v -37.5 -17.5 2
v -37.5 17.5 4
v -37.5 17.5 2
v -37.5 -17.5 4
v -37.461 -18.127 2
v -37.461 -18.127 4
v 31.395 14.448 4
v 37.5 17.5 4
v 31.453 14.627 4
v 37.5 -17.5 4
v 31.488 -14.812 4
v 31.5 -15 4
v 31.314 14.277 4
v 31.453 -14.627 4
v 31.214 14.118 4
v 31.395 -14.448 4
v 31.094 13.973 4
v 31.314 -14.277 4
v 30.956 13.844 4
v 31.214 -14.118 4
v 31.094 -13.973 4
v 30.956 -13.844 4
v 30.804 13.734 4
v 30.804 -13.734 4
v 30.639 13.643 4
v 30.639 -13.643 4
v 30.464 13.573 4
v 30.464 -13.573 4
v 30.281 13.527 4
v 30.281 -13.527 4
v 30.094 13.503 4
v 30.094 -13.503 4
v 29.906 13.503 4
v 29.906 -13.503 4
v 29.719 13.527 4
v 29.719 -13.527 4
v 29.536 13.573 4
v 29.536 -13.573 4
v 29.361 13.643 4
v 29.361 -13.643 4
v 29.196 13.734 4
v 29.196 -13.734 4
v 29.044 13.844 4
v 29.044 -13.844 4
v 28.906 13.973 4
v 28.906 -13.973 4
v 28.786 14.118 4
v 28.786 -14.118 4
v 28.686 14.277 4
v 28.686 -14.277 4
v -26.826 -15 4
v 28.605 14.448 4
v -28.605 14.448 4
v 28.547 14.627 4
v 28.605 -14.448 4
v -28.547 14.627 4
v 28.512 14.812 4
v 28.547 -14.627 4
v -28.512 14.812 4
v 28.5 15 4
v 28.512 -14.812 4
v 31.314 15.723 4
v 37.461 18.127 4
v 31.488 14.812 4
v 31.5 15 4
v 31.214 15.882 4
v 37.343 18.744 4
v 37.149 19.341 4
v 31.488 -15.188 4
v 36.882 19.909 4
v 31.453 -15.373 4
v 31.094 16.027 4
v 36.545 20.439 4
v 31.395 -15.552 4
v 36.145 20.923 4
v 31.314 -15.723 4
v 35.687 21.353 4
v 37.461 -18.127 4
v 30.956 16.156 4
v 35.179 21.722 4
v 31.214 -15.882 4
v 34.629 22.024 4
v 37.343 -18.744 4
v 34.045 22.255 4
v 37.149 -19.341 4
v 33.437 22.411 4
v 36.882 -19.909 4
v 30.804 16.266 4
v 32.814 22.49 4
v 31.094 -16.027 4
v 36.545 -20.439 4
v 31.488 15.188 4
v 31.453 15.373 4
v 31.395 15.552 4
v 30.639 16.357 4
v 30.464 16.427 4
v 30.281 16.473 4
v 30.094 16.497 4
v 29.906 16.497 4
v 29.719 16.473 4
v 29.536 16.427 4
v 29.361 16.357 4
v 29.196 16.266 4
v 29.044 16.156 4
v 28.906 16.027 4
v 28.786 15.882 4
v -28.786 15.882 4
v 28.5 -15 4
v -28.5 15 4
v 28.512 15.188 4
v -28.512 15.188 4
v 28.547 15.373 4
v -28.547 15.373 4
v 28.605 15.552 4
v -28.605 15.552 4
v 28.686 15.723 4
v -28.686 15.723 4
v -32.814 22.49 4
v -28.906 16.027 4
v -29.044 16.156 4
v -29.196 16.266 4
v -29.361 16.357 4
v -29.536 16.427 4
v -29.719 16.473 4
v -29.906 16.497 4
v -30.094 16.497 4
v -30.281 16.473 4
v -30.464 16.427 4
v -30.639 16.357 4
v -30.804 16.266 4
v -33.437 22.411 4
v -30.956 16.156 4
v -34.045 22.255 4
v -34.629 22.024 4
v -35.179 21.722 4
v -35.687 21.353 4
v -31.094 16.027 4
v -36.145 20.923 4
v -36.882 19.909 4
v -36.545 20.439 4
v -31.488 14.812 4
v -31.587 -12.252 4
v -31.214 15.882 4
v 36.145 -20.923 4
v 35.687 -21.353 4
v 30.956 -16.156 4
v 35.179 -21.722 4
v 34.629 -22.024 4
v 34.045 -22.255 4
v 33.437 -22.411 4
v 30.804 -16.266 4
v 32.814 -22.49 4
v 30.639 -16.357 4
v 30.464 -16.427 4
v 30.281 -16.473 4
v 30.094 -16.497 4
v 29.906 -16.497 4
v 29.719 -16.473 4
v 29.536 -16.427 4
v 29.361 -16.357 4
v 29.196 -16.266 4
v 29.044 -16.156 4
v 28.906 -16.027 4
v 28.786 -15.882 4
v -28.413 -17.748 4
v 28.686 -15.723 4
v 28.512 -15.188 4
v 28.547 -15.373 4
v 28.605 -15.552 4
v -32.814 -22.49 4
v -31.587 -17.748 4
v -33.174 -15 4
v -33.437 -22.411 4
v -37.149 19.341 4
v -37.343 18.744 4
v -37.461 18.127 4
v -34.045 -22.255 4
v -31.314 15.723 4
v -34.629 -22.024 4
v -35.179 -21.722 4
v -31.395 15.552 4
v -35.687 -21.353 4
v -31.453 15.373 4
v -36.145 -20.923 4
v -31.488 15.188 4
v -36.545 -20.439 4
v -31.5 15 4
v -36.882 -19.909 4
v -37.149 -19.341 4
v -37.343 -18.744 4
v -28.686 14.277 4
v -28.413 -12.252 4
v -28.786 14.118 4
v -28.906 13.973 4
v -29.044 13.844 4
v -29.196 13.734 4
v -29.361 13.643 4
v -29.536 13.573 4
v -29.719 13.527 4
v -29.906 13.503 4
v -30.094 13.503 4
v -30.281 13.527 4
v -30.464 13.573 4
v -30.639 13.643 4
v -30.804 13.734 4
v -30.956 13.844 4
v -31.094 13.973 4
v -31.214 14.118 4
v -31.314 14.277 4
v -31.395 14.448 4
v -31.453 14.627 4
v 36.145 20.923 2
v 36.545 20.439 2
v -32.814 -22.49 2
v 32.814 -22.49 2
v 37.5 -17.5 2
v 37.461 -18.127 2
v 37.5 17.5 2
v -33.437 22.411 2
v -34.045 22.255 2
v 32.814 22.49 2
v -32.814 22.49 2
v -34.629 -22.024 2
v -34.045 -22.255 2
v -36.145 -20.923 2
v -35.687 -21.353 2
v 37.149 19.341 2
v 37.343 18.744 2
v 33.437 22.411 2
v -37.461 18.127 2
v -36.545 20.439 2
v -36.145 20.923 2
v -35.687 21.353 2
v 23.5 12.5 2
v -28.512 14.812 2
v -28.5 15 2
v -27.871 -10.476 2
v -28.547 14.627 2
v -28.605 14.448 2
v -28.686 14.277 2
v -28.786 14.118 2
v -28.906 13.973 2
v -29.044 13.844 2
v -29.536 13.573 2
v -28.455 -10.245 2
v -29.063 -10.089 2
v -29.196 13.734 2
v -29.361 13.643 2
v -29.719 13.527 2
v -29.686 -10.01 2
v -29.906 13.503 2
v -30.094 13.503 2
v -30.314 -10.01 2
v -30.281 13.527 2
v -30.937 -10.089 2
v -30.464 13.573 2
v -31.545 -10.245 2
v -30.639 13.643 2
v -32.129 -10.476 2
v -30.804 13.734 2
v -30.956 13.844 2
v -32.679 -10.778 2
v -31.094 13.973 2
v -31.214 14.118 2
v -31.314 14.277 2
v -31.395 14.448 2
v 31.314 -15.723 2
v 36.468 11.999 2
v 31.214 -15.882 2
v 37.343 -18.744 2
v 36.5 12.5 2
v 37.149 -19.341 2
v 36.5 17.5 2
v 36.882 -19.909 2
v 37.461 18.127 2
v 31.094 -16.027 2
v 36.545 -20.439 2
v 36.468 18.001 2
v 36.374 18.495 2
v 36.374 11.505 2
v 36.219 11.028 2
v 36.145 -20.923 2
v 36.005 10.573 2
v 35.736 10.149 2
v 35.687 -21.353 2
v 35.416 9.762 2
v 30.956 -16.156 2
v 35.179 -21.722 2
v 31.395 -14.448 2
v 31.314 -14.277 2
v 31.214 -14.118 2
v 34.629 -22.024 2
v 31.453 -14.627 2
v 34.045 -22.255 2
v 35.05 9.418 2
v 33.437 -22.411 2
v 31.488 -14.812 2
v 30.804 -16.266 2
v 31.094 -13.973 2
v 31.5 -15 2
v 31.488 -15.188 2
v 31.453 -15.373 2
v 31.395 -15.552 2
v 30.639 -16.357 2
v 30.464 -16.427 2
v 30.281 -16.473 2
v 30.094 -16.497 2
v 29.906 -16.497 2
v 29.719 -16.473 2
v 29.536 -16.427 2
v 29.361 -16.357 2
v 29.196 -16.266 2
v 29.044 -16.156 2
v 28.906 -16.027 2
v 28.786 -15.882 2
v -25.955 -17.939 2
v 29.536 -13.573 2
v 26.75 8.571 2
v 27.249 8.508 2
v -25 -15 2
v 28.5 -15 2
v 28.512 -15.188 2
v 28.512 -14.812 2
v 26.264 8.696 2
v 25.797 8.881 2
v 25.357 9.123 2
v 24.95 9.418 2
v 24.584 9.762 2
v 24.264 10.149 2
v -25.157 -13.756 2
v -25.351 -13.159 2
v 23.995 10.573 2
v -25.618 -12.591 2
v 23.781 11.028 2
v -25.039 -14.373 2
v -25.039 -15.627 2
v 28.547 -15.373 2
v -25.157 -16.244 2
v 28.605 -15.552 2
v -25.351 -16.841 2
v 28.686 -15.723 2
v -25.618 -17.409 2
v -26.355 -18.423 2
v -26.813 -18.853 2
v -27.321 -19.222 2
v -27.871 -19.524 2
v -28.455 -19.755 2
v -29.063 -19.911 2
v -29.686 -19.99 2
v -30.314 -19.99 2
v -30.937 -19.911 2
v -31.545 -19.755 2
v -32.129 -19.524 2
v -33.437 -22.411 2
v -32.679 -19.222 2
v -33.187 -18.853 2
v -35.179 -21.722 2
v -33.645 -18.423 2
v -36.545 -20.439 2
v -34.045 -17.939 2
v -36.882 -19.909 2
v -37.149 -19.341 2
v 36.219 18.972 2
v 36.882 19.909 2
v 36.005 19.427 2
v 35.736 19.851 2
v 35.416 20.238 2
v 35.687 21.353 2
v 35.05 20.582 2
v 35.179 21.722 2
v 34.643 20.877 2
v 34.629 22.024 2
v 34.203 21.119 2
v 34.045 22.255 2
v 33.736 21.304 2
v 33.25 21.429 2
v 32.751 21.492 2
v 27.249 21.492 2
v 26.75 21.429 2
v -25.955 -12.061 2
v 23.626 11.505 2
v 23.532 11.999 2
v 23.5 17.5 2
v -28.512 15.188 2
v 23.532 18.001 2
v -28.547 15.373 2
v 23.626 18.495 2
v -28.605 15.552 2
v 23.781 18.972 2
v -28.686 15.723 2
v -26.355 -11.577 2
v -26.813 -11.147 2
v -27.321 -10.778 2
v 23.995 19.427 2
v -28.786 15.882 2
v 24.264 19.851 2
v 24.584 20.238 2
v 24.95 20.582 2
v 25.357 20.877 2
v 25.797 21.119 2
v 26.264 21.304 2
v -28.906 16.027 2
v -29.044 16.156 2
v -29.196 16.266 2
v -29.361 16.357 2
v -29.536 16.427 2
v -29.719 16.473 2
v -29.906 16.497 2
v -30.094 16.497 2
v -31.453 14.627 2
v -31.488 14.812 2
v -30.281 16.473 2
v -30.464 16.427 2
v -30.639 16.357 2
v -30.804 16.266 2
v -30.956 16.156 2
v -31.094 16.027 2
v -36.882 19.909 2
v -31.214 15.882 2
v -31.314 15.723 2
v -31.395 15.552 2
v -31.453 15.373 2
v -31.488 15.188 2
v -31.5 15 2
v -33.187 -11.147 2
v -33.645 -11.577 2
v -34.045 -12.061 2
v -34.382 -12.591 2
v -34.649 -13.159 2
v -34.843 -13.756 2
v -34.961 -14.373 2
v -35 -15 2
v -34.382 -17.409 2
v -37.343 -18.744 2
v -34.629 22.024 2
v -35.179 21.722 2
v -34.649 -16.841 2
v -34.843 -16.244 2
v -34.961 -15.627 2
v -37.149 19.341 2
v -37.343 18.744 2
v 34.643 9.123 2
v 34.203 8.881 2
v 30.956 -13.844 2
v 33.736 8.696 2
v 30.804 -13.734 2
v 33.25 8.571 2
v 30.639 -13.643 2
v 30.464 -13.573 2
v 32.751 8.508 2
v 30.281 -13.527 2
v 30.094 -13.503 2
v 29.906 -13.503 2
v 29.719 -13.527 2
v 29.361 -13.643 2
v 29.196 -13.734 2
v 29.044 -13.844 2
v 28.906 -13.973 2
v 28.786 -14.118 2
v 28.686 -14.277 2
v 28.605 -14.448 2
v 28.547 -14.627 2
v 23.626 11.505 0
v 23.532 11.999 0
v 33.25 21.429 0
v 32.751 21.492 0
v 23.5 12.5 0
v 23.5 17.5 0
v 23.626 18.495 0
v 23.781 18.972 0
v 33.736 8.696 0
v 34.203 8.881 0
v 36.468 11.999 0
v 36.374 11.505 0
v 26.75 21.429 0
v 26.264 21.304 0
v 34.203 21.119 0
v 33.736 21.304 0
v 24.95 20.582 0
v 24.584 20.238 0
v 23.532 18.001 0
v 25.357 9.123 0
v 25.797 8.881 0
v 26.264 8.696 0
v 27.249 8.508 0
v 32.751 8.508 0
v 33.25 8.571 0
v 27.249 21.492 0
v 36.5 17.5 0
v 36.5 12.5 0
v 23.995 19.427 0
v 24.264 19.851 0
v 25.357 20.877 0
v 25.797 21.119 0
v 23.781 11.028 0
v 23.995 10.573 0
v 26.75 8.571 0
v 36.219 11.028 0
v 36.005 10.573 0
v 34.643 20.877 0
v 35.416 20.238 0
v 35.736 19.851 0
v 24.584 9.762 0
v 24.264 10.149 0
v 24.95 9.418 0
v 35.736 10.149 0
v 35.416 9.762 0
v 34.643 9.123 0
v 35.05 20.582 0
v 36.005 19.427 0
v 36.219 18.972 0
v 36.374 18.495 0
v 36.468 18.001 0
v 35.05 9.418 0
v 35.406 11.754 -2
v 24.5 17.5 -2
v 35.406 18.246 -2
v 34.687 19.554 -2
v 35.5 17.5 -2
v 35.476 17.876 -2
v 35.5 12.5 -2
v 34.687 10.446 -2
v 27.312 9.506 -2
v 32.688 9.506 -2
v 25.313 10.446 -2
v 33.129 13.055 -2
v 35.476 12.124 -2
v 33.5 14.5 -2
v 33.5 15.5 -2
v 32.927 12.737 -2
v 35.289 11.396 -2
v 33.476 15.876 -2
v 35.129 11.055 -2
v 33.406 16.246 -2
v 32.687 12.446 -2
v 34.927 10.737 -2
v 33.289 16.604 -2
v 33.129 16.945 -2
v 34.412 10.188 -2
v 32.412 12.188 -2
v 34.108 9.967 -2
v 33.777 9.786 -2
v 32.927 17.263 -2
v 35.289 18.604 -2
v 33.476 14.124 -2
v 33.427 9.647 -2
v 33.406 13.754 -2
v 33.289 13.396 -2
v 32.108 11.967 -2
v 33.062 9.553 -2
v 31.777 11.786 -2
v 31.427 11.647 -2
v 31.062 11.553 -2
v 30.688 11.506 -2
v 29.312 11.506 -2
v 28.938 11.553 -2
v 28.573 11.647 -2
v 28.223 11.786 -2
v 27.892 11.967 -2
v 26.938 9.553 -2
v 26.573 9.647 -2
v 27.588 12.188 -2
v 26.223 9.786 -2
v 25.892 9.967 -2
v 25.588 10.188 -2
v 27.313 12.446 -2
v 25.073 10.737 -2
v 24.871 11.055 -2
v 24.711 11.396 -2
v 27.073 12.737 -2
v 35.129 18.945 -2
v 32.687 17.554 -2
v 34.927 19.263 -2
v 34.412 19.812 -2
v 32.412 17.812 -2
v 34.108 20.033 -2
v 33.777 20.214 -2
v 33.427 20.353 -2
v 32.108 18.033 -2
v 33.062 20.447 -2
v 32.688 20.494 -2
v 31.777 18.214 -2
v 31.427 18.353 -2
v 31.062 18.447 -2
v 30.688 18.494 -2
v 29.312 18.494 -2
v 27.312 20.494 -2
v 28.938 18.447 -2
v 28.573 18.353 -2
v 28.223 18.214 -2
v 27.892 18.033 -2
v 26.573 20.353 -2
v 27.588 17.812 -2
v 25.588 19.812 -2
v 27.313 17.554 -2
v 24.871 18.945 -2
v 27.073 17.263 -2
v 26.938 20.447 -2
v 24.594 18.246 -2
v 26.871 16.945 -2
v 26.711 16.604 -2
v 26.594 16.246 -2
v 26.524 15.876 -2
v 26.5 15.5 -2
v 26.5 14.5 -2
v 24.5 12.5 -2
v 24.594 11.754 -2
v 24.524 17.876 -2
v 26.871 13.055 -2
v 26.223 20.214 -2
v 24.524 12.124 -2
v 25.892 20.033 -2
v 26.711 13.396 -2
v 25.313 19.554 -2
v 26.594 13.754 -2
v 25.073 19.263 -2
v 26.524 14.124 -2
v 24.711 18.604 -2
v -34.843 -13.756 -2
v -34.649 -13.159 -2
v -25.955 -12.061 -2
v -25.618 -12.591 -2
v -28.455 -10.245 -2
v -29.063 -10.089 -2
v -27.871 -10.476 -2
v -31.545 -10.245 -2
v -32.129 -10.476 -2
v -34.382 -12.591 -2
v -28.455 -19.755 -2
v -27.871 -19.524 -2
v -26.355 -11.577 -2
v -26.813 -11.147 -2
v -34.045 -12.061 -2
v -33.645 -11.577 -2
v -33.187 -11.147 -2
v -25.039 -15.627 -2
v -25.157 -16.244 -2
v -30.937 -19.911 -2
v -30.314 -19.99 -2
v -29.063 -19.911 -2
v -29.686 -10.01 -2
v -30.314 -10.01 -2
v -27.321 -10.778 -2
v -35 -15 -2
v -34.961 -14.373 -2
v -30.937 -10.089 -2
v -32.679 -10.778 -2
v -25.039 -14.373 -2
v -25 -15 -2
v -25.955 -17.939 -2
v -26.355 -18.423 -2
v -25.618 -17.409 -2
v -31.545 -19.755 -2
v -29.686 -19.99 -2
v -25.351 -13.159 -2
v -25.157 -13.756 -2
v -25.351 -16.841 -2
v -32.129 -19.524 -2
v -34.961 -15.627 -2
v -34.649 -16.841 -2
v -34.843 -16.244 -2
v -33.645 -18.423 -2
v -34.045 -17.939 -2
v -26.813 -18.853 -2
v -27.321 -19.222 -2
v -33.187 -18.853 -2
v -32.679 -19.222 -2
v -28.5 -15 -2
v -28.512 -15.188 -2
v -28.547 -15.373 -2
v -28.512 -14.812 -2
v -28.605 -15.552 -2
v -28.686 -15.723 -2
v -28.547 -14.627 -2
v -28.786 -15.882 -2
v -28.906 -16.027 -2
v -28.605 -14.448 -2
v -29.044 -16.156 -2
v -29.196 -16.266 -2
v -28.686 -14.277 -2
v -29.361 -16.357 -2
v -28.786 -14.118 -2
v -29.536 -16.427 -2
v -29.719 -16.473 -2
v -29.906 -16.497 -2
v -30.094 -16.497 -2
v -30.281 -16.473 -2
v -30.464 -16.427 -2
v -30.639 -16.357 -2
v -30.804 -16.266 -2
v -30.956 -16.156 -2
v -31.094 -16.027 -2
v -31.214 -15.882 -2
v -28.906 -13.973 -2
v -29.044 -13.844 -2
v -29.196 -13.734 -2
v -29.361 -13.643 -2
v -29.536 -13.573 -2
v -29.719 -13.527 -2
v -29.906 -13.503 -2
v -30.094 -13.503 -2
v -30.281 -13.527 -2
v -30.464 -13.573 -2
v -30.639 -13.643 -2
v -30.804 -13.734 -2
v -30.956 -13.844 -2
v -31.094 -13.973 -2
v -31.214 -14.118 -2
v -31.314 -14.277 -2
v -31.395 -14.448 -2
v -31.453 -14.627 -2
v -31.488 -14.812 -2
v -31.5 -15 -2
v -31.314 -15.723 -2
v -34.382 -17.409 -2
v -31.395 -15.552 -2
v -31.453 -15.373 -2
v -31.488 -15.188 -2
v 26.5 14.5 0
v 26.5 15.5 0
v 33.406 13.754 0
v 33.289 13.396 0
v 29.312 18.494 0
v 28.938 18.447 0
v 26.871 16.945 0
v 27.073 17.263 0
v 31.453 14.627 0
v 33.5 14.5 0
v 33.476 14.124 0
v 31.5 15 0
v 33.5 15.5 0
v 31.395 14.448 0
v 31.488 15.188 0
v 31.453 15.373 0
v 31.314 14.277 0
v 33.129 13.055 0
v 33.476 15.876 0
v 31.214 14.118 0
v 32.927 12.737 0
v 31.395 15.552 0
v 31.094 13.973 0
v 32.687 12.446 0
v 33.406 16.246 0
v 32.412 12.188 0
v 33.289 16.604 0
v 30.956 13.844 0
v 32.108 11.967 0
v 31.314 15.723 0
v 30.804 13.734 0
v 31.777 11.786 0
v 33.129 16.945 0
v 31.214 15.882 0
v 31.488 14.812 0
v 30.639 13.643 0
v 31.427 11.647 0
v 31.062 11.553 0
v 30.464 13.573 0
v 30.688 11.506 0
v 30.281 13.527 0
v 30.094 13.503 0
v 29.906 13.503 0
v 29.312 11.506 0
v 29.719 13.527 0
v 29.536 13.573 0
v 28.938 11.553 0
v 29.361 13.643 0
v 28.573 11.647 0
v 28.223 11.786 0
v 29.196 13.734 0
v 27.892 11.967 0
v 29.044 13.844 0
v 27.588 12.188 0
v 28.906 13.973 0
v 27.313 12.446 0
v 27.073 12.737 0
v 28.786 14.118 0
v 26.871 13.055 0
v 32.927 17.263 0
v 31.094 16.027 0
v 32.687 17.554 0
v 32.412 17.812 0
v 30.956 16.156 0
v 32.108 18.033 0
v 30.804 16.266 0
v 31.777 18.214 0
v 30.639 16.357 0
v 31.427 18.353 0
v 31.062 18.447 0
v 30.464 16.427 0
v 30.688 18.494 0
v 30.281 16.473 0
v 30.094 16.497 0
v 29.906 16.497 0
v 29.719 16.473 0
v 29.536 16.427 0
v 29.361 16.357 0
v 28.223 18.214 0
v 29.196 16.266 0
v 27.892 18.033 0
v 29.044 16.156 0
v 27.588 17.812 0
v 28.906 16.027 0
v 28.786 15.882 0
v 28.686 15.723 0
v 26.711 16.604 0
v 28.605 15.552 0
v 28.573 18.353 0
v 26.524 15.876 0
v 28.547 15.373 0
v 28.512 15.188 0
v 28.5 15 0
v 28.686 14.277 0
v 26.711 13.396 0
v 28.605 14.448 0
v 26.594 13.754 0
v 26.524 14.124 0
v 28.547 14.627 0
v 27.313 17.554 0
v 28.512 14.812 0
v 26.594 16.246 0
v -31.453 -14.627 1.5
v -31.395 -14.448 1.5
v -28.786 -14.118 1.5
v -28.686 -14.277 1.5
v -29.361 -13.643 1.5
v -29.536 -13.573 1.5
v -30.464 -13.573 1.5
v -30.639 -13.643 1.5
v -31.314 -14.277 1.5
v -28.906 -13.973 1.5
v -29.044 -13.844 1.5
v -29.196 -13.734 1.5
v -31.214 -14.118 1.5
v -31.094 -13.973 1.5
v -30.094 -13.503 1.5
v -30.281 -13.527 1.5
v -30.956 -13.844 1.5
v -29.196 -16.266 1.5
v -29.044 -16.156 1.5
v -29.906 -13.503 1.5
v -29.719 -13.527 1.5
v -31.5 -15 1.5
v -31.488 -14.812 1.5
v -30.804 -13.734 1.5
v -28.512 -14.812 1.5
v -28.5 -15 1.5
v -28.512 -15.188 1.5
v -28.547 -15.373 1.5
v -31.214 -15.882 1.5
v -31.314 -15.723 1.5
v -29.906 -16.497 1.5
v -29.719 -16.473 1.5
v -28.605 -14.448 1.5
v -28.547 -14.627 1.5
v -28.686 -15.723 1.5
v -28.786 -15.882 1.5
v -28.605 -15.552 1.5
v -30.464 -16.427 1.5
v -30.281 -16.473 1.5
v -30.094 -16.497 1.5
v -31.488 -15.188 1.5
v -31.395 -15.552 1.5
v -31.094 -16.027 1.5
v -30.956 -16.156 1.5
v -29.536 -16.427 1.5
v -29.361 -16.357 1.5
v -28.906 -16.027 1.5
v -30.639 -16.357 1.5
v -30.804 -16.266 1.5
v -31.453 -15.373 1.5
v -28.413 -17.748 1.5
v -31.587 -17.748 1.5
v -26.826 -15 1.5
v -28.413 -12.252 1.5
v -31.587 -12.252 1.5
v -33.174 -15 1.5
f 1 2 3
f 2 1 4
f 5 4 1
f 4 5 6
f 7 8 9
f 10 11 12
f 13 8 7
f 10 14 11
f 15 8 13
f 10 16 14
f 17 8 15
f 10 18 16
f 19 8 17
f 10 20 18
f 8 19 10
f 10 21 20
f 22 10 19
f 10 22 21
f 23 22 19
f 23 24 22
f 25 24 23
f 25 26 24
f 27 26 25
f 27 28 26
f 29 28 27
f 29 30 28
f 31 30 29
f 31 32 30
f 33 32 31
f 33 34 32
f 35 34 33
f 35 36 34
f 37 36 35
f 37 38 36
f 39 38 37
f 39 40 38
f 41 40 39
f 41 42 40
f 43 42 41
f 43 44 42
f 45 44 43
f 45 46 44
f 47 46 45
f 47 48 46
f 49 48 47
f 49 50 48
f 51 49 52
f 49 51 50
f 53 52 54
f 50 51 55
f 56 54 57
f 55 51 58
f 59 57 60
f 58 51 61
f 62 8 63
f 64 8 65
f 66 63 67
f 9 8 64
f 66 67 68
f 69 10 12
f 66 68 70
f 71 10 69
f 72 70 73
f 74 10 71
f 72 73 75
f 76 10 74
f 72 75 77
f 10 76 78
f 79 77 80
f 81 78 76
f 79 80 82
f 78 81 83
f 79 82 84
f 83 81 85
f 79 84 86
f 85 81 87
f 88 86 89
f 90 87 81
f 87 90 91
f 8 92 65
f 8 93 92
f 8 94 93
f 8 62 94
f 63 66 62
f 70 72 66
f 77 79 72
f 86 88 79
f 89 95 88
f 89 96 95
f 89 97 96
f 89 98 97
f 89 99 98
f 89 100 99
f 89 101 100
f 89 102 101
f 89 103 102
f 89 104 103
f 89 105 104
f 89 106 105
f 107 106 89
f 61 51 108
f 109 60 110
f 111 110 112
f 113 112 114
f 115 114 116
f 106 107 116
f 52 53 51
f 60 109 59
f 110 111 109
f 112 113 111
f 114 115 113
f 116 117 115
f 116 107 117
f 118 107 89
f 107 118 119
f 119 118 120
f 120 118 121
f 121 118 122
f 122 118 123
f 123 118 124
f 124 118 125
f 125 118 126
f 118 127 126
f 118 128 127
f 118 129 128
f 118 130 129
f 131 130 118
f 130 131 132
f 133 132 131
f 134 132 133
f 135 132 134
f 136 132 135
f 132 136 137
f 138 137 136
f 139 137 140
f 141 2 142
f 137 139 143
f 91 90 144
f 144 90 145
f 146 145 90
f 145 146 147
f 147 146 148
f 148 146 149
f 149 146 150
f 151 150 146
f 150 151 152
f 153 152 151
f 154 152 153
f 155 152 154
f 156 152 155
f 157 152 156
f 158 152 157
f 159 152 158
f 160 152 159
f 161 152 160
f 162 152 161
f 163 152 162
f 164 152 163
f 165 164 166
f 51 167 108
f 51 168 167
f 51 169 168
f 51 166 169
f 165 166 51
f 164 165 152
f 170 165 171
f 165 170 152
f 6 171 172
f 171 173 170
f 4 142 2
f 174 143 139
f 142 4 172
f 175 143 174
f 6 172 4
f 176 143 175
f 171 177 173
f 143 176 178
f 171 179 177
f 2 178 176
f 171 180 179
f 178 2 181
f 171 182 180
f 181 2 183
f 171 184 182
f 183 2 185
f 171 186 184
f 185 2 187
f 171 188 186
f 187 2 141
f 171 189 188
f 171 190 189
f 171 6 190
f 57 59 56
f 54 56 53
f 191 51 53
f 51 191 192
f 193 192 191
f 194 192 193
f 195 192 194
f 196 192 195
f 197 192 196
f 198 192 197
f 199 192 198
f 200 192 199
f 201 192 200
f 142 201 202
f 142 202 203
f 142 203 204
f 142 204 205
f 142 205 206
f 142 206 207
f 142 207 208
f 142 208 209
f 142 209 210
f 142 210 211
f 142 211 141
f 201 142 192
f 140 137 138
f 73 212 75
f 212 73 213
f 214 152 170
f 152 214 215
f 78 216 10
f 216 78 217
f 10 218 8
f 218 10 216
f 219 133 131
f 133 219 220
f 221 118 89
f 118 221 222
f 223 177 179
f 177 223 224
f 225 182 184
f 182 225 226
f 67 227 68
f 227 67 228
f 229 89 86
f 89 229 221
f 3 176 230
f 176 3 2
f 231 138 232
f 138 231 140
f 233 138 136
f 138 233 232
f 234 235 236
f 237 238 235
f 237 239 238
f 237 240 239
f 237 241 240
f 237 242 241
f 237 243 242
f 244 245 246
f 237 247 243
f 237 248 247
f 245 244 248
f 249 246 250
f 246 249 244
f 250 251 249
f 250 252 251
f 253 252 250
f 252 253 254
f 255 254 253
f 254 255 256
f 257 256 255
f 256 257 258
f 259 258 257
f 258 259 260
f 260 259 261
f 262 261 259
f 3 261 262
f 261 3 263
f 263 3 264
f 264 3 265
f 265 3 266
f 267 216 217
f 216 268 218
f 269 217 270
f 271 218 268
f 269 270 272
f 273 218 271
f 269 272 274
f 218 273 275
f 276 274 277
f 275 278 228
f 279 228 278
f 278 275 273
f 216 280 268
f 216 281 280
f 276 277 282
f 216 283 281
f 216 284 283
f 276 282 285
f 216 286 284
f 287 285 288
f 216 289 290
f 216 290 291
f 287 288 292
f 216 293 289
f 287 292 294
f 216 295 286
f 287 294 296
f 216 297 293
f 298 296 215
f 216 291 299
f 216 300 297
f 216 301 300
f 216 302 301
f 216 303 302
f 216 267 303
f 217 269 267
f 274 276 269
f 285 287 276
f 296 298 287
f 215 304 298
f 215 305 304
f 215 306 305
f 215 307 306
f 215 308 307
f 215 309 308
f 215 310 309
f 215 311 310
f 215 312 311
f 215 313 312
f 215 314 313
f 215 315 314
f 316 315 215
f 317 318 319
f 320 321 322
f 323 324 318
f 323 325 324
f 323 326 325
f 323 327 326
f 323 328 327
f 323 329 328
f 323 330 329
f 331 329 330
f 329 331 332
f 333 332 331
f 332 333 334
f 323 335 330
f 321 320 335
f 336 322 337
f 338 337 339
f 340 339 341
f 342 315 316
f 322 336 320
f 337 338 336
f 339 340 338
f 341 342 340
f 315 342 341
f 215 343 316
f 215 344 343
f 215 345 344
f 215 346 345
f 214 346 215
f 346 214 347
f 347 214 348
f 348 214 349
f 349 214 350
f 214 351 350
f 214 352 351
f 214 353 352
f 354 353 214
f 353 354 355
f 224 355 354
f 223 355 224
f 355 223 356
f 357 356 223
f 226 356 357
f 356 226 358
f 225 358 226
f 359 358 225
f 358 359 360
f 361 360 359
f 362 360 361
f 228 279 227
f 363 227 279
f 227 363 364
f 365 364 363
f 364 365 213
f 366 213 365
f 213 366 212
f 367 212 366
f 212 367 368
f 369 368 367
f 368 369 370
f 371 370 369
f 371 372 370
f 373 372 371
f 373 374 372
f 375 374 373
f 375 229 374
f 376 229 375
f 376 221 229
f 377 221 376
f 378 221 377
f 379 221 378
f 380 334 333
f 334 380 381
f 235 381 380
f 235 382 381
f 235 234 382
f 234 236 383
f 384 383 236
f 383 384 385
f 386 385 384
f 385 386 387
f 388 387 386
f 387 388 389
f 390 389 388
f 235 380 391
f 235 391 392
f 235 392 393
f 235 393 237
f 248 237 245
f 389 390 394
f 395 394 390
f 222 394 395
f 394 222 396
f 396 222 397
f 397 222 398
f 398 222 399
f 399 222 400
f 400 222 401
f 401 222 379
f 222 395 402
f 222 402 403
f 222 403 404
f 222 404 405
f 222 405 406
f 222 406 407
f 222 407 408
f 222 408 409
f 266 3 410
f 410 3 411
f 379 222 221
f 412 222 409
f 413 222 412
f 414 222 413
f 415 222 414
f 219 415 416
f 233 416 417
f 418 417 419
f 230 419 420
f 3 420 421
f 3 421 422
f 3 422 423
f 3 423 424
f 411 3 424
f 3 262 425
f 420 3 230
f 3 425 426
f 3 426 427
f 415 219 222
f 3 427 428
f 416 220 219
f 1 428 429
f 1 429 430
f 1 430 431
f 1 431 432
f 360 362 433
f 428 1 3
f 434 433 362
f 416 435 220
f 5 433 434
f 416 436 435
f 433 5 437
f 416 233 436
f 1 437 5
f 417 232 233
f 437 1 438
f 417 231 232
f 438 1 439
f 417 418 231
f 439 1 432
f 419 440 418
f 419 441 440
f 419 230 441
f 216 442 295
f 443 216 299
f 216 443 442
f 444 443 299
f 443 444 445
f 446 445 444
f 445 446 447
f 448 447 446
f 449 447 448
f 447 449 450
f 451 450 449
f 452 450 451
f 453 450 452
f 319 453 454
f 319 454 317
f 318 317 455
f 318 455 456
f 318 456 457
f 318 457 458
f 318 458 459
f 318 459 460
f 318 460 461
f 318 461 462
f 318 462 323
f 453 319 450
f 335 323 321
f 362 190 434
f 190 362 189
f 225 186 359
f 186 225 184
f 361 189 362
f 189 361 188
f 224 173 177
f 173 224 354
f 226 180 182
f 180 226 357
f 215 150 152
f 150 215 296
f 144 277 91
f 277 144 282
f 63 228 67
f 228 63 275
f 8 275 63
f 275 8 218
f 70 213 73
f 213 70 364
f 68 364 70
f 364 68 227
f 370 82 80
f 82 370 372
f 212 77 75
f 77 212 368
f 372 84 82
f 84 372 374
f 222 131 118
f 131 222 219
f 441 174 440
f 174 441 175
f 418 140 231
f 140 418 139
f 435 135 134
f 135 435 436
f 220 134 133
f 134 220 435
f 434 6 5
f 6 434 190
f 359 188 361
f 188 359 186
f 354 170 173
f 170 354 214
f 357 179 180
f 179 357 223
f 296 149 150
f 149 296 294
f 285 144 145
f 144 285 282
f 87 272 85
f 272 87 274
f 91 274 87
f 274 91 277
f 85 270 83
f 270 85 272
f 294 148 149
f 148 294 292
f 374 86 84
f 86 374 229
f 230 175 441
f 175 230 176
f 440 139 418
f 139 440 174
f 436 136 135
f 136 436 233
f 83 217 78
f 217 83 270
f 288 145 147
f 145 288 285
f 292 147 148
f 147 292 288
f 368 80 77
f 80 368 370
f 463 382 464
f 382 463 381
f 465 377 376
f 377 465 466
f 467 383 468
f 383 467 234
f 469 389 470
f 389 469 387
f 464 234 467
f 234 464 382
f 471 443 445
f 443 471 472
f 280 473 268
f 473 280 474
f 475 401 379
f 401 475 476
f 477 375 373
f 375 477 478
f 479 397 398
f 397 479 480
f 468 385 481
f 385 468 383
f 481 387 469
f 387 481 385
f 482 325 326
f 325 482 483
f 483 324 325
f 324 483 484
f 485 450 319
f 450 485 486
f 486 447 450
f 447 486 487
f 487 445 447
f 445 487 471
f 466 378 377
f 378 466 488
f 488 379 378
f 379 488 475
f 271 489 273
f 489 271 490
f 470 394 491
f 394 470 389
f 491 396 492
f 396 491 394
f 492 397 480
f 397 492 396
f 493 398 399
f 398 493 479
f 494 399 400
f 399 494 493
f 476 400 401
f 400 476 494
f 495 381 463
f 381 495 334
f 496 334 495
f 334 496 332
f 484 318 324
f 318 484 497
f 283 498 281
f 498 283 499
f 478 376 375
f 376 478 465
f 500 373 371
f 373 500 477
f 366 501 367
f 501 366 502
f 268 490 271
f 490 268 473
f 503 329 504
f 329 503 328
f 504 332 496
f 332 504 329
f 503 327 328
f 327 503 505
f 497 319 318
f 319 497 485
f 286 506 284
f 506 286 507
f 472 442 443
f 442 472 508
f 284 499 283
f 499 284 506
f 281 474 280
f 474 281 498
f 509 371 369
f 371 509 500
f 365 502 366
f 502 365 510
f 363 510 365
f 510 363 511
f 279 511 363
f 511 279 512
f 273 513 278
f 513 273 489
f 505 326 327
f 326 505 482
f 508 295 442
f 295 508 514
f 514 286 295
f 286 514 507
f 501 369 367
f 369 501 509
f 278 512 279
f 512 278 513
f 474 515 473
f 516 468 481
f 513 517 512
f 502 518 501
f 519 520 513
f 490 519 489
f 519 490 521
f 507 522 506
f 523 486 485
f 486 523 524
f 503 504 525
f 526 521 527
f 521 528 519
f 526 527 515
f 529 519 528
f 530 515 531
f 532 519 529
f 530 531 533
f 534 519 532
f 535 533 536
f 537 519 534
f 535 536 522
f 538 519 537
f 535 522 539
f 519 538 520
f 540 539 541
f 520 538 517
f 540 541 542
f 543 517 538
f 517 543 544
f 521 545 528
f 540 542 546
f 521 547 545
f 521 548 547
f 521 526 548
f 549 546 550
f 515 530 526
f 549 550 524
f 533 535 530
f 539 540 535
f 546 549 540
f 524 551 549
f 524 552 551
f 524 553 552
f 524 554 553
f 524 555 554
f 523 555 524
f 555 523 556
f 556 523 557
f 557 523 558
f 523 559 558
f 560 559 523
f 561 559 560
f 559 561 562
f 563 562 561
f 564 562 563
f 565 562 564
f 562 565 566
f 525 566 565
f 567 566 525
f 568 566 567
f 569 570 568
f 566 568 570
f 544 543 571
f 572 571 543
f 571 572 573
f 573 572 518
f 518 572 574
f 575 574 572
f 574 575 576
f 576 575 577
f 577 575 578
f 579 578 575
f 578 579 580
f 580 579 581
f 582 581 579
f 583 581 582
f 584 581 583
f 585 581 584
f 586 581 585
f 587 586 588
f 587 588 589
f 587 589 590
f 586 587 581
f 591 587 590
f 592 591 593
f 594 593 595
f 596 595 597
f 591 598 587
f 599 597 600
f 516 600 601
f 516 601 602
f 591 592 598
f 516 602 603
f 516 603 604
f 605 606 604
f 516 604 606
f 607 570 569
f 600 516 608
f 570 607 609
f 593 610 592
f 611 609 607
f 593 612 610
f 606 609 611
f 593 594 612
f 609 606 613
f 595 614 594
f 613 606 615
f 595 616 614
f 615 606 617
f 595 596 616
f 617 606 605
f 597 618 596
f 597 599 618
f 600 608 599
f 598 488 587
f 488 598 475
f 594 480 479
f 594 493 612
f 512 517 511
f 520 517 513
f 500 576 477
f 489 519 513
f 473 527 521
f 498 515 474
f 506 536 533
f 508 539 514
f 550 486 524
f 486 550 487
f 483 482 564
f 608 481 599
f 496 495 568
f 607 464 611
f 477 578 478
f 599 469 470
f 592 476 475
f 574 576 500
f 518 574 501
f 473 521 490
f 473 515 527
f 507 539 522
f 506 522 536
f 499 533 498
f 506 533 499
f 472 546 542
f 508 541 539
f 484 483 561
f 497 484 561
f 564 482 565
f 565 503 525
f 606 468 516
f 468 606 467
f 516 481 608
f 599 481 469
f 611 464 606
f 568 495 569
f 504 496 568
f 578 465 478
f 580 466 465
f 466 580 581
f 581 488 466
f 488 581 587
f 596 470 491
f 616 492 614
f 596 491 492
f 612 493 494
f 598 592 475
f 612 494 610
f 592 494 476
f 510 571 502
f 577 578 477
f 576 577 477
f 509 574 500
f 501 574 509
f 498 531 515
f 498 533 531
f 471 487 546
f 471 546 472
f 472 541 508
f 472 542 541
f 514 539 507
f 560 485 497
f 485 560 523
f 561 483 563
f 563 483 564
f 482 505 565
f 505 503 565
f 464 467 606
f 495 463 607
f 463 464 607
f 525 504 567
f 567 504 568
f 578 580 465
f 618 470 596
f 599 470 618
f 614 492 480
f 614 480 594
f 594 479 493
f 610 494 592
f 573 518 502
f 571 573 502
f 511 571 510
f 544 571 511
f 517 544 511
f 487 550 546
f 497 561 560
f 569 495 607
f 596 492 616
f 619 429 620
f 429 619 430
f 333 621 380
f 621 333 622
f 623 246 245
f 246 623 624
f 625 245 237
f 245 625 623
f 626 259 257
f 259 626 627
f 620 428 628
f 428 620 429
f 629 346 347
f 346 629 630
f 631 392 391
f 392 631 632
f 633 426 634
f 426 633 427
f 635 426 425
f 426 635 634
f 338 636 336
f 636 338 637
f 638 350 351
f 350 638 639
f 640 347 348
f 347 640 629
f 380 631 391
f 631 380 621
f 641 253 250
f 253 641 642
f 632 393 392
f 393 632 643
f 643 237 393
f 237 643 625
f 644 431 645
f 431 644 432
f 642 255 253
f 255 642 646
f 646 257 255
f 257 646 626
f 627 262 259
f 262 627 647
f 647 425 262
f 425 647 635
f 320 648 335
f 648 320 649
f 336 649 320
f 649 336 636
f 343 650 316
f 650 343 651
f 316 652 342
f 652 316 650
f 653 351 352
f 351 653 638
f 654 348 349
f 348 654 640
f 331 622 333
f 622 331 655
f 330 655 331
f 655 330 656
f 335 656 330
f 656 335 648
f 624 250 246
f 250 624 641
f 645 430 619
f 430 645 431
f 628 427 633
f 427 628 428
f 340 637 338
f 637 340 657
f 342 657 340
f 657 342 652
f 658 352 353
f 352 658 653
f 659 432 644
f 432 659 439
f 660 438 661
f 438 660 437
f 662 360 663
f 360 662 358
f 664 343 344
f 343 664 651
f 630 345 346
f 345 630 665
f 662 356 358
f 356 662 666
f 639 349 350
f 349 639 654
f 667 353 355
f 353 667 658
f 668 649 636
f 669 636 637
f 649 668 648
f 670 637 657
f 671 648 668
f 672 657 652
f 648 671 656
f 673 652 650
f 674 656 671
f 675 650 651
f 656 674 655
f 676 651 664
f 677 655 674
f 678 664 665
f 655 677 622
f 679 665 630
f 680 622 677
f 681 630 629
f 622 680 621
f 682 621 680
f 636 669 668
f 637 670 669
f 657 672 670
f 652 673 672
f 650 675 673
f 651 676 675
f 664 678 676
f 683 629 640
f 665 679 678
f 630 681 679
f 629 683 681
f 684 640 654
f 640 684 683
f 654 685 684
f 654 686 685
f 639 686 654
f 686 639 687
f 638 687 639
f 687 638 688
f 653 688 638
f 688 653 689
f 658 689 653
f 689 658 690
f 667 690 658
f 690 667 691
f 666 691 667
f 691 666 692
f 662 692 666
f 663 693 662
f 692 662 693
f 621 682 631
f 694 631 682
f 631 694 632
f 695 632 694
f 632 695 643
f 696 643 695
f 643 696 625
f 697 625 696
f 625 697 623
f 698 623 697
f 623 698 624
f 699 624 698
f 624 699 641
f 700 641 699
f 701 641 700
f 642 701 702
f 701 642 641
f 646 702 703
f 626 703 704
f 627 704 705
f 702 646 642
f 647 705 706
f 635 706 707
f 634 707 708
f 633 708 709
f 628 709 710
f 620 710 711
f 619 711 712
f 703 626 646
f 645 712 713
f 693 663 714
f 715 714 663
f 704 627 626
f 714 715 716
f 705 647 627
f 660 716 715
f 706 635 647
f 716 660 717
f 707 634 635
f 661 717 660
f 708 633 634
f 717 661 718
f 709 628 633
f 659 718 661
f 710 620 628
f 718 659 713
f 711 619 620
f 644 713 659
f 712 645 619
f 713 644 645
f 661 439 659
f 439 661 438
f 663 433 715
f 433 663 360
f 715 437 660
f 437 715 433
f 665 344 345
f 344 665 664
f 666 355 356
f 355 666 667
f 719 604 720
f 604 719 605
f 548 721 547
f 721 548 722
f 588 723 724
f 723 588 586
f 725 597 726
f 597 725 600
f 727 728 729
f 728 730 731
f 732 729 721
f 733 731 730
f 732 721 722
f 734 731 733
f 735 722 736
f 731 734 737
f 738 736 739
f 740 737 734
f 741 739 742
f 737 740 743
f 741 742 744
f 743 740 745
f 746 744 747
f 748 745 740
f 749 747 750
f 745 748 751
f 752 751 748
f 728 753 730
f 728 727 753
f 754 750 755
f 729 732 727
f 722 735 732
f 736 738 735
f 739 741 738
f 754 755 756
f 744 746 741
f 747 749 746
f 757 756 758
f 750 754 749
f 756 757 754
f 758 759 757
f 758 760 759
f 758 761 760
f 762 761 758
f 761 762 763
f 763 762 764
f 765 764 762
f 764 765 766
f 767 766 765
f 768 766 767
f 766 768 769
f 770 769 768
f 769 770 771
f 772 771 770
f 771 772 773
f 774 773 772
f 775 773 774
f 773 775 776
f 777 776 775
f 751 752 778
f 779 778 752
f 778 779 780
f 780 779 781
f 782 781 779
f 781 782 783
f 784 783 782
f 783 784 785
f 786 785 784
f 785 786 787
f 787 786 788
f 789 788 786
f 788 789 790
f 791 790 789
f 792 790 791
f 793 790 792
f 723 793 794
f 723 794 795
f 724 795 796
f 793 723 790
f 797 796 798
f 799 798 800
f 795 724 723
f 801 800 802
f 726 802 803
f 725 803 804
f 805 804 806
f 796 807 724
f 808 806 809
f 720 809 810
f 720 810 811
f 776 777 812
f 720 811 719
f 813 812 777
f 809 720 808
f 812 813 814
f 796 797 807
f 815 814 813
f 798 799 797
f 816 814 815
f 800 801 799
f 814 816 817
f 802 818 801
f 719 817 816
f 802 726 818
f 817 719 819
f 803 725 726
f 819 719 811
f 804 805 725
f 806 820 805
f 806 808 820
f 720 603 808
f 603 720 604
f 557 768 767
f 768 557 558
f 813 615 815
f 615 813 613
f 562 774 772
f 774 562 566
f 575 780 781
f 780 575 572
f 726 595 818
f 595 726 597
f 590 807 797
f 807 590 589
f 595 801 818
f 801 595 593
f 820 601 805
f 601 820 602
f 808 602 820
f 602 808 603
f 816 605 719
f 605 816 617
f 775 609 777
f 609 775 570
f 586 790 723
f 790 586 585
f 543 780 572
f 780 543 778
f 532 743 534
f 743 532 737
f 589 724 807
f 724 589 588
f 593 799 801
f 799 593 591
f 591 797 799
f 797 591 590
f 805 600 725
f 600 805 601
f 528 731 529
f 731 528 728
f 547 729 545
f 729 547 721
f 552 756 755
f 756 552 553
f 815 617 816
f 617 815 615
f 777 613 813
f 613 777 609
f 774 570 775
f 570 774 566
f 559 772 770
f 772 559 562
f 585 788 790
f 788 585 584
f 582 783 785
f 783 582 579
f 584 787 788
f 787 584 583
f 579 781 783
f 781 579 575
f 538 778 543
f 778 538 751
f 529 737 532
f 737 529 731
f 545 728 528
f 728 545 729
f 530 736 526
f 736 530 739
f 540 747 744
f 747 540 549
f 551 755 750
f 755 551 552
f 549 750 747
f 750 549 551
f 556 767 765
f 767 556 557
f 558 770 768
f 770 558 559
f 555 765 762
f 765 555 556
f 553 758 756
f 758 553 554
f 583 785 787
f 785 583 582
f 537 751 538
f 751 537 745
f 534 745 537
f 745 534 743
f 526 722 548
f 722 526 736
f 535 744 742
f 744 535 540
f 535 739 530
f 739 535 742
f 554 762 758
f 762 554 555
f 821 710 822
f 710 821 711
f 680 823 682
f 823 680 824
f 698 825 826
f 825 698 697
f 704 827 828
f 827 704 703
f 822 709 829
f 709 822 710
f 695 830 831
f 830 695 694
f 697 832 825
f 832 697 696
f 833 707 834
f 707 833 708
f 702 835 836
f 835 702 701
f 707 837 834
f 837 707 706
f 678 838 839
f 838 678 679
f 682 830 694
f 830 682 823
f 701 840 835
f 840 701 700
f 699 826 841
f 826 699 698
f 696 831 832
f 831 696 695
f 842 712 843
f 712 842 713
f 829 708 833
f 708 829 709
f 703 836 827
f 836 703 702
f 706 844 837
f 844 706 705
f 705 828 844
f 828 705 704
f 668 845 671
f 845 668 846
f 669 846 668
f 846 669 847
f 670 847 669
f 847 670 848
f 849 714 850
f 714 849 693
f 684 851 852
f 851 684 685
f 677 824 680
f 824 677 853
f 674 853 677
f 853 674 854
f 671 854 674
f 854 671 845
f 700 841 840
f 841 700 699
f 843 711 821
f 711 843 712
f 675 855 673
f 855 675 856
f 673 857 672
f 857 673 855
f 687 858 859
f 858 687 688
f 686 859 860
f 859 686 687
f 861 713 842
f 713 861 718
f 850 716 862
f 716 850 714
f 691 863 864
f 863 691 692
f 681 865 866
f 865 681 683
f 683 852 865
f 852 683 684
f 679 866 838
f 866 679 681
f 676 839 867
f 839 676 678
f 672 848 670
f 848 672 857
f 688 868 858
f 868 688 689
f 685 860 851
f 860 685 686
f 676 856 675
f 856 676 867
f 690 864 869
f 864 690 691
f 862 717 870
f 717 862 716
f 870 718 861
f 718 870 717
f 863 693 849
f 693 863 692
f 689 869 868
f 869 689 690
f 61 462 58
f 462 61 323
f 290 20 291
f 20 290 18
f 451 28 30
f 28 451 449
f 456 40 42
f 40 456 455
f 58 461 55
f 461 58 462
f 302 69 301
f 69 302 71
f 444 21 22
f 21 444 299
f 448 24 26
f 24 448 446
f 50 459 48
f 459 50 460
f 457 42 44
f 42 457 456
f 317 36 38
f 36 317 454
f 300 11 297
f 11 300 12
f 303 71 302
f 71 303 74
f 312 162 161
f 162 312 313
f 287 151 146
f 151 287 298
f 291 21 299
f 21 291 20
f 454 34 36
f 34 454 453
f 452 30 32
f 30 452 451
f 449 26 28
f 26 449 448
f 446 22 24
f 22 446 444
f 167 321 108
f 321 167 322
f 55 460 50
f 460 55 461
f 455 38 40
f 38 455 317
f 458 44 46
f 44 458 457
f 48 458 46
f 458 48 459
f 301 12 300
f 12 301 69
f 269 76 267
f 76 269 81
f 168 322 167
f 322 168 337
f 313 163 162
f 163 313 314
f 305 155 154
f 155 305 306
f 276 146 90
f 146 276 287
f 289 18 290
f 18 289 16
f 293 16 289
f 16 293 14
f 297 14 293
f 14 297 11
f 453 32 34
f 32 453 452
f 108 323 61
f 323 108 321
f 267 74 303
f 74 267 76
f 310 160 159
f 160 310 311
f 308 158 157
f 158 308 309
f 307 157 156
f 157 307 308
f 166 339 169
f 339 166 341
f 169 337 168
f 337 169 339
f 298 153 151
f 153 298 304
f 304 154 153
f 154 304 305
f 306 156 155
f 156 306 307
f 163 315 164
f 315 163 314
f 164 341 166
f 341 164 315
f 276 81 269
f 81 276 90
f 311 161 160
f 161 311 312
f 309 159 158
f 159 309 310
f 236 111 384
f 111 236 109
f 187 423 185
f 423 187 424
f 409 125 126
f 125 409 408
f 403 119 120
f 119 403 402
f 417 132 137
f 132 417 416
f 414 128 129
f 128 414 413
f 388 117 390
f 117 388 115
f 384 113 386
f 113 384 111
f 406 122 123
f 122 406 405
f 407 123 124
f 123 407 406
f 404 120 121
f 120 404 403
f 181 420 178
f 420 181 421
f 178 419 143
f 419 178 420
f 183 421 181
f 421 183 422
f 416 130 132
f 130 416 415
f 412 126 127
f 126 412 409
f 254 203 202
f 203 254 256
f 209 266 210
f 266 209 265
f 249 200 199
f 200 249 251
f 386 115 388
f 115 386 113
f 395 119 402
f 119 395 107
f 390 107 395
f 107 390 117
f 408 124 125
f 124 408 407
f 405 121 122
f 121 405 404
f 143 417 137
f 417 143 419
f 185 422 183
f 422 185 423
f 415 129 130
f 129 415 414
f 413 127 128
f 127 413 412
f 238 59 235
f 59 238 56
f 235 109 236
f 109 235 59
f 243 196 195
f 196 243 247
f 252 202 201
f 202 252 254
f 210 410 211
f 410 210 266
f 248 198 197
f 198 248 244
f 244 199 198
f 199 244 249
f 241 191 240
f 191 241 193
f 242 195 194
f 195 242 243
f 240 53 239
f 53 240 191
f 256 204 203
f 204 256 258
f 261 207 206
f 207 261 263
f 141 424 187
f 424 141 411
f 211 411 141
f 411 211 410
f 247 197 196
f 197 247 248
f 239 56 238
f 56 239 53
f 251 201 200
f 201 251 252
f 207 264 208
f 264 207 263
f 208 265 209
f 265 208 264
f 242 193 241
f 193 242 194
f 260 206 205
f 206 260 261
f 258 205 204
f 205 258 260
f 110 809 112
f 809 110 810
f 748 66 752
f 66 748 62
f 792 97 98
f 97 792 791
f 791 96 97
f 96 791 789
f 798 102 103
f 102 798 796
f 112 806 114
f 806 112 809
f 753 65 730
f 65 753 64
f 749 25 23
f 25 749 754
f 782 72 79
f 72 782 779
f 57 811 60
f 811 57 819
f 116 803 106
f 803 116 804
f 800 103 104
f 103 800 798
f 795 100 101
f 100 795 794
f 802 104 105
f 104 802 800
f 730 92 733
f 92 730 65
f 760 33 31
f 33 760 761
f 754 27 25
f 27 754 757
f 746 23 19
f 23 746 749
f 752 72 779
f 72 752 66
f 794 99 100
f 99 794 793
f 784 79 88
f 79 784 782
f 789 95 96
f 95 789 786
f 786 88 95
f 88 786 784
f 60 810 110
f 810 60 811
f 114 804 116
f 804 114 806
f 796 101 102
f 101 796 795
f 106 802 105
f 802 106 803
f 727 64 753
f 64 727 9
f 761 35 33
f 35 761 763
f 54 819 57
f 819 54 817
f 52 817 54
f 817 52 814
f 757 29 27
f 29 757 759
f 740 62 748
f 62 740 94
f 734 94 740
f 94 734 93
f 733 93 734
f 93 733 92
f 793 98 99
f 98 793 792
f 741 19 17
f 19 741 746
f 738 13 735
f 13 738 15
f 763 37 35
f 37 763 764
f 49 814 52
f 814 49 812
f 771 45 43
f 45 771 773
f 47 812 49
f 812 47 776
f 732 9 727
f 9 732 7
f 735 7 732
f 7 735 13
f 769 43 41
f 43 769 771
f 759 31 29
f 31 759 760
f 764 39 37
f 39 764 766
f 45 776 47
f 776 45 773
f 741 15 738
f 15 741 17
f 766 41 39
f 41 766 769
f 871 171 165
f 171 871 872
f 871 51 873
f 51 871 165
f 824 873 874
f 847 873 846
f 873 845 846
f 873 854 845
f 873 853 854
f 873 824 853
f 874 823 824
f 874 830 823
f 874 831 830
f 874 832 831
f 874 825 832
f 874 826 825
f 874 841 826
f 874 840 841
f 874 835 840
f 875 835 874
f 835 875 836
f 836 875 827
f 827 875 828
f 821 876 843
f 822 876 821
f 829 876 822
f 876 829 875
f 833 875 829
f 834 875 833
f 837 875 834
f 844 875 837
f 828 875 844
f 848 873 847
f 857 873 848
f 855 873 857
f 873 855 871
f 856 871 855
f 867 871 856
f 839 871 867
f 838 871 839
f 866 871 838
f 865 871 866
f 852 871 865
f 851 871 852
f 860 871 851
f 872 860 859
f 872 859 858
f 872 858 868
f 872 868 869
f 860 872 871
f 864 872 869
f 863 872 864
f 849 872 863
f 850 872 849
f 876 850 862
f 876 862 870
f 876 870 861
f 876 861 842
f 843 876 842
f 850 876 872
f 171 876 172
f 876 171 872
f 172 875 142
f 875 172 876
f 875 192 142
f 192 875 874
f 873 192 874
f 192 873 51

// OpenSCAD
$fn = 50;


difference() {
	union() {
		translate(v = [0, 0, 2]) {
			rotate(a = [0, 0, 0]) {
				hull() {
					translate(v = [-32.5000000000, 17.5000000000, 0]) {
						rotate(a = [0, 0, 0]) {
							translate(v = [0, 0, 0]) {
								rotate(a = [0, 0, 0]) {
									cylinder(h = 2, r = 5);
								}
							}
						}
					}
					translate(v = [32.5000000000, 17.5000000000, 0]) {
						rotate(a = [0, 0, 0]) {
							translate(v = [0, 0, 0]) {
								rotate(a = [0, 0, 0]) {
									cylinder(h = 2, r = 5);
								}
							}
						}
					}
					translate(v = [-32.5000000000, -17.5000000000, 0]) {
						rotate(a = [0, 0, 0]) {
							translate(v = [0, 0, 0]) {
								rotate(a = [0, 0, 0]) {
									cylinder(h = 2, r = 5);
								}
							}
						}
					}
					translate(v = [32.5000000000, -17.5000000000, 0]) {
						rotate(a = [0, 0, 0]) {
							translate(v = [0, 0, 0]) {
								rotate(a = [0, 0, 0]) {
									cylinder(h = 2, r = 5);
								}
							}
						}
					}
				}
			}
		}
		translate(v = [30.0000000000, 15.0000000000, 0]) {
			rotate(a = [0, 0, 0]) {
				hull() {
					translate(v = [-2.5000000000, 2.5000000000, 0]) {
						rotate(a = [0, 0, 0]) {
							cylinder(h = 2, r1 = 4.0000000000, r2 = 4.0000000000);
						}
					}
					translate(v = [2.5000000000, 2.5000000000, 0]) {
						rotate(a = [0, 0, 0]) {
							cylinder(h = 2, r1 = 4.0000000000, r2 = 4.0000000000);
						}
					}
					translate(v = [-2.5000000000, -2.5000000000, 0]) {
						rotate(a = [0, 0, 0]) {
							cylinder(h = 2, r1 = 4.0000000000, r2 = 4.0000000000);
						}
					}
					translate(v = [2.5000000000, -2.5000000000, 0]) {
						rotate(a = [0, 0, 0]) {
							cylinder(h = 2, r1 = 4.0000000000, r2 = 4.0000000000);
						}
					}
				}
			}
		}
		translate(v = [30.0000000000, 15.0000000000, -2]) {
			rotate(a = [0, 180, 0]) {
				hull() {
					translate(v = [-2.5000000000, 2.5000000000, 0]) {
						rotate(a = [0, 180, 0]) {
							cylinder(h = 2, r1 = 3.0000000000, r2 = 4.0000000000);
						}
					}
					translate(v = [2.5000000000, 2.5000000000, 0]) {
						rotate(a = [0, 180, 0]) {
							cylinder(h = 2, r1 = 3.0000000000, r2 = 4.0000000000);
						}
					}
					translate(v = [-2.5000000000, -2.5000000000, 0]) {
						rotate(a = [0, 180, 0]) {
							cylinder(h = 2, r1 = 3.0000000000, r2 = 4.0000000000);
						}
					}
					translate(v = [2.5000000000, -2.5000000000, 0]) {
						rotate(a = [0, 180, 0]) {
							cylinder(h = 2, r1 = 3.0000000000, r2 = 4.0000000000);
						}
					}
				}
			}
		}
		translate(v = [-30.0000000000, -15.0000000000, -2.0000000000]) {
			rotate(a = [0, 0, 0]) {
				cylinder(h = 4, r = 5);
			}
		}
	}
	union() {
		translate(v = [30.0000000000, 15.0000000000, -2]) {
			rotate(a = [0, 0, 0]) {
				hull() {
					translate(v = [-0.5000000000, 0.5000000000, 0]) {
						rotate(a = [0, 0, 0]) {
							translate(v = [0, 0, 0]) {
								rotate(a = [0, 0, 0]) {
									cylinder(h = 2, r = 3.0000000000);
								}
							}
						}
					}
					translate(v = [0.5000000000, 0.5000000000, 0]) {
						rotate(a = [0, 0, 0]) {
							translate(v = [0, 0, 0]) {
								rotate(a = [0, 0, 0]) {
									cylinder(h = 2, r = 3.0000000000);
								}
							}
						}
					}
					translate(v = [-0.5000000000, -0.5000000000, 0]) {
						rotate(a = [0, 0, 0]) {
							translate(v = [0, 0, 0]) {
								rotate(a = [0, 0, 0]) {
									cylinder(h = 2, r = 3.0000000000);
								}
							}
						}
					}
					translate(v = [0.5000000000, -0.5000000000, 0]) {
						rotate(a = [0, 0, 0]) {
							translate(v = [0, 0, 0]) {
								rotate(a = [0, 0, 0]) {
									cylinder(h = 2, r = 3.0000000000);
								}
							}
						}
					}
				}
			}
		}
		translate(v = [-30.0000000000, -15.0000000000, -50]) {
			rotate(a = [0, 0, 0]) {
				cylinder(h = 100, r = 1.5000000000);
			}
		}
		translate(v = [30.0000000000, -15.0000000000, -50]) {
			rotate(a = [0, 0, 0]) {
				cylinder(h = 100, r = 1.5000000000);
			}
		}
		translate(v = [-30.0000000000, 15.0000000000, -50]) {
			rotate(a = [0, 0, 0]) {
				cylinder(h = 100, r = 1.5000000000);
			}
		}
		translate(v = [30.0000000000, 15.0000000000, -50]) {
			rotate(a = [0, 0, 0]) {
				cylinder(h = 100, r = 1.5000000000);
			}
		}
		translate(v = [-30.0000000000, -15.0000000000, 1.5000000000]) {
			rotate(a = [0, 0, 0]) {
				#translate(v = [0, 0, 0]) {
					rotate(a = [0, 0, 0]) {
						linear_extrude(height = 2.5000000000) {
							polygon(points = [[3.1735000000, 0.0000000000], [1.5867500000, 2.7483316189], [-1.5867500000, 2.7483316189], [-3.1735000000, 0.0000000000], [-1.5867500000, -2.7483316189], [1.5867500000, -2.7483316189]]);
						}
					}
				}
			}
		}
	}
}
